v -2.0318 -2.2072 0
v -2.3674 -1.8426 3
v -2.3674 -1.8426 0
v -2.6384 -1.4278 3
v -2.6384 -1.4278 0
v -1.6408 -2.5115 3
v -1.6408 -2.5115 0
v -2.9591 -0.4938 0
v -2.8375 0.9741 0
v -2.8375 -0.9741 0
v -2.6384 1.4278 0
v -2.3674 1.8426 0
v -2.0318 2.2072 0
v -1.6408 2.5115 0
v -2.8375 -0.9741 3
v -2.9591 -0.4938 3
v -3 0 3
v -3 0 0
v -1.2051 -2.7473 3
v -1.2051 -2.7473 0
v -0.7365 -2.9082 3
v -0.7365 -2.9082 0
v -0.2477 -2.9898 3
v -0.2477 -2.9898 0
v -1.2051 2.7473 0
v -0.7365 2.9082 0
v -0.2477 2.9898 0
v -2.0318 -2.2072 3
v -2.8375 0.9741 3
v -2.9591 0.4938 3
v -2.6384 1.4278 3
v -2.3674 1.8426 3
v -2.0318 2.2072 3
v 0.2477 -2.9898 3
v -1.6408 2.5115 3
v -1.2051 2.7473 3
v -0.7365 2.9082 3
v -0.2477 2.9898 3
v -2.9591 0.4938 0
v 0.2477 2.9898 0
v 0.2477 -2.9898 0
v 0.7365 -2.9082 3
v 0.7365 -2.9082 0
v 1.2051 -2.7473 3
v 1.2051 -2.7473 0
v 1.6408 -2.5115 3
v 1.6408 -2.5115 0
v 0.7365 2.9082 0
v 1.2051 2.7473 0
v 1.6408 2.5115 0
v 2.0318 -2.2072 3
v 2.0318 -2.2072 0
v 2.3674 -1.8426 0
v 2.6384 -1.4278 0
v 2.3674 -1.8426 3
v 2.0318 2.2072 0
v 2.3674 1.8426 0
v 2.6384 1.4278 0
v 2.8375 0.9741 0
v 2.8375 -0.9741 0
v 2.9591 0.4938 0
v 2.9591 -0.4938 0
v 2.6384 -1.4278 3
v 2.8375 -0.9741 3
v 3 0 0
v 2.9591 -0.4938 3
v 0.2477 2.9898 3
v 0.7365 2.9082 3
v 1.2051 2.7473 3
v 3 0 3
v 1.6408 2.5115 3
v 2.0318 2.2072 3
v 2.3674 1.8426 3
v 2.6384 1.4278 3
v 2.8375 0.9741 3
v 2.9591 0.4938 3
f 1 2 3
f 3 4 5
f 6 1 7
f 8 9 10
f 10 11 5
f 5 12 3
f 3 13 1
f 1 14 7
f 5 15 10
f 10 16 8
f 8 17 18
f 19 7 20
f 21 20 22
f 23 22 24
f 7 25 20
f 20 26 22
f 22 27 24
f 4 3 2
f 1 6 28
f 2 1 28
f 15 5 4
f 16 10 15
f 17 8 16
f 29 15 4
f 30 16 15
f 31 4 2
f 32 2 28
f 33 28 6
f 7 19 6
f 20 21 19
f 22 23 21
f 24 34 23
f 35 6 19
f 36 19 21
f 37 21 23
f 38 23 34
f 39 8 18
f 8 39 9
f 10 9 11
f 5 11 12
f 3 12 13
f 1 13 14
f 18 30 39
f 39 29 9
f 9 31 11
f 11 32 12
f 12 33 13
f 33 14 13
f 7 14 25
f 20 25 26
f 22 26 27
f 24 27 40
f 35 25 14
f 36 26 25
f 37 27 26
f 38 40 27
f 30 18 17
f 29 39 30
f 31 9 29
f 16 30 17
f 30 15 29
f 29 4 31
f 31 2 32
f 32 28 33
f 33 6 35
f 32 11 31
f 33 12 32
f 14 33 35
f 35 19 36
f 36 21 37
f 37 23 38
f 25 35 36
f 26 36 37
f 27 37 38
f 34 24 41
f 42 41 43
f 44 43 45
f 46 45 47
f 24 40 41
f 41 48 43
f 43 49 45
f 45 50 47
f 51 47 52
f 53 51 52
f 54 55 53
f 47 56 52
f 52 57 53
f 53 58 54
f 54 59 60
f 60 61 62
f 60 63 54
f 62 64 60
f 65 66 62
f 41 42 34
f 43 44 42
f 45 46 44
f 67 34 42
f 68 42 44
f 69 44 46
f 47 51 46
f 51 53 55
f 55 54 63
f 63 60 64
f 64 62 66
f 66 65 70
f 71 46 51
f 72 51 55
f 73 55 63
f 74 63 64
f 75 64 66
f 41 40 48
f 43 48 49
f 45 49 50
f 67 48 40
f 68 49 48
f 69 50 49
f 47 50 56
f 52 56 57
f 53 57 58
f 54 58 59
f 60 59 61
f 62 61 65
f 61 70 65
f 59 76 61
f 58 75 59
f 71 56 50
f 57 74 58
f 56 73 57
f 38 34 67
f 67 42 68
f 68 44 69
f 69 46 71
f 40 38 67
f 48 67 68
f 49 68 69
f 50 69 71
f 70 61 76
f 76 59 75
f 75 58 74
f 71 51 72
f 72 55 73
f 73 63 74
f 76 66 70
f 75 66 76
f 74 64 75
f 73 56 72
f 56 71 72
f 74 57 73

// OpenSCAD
// file: ../lib/lib.scad
// Shared helpers. Include AFTER params.scad (needs TOL, M3_* etc.).
$fa = 4; $fs = 0.5;

module rrect(size, r) {            // 2D rounded rectangle, centred
    r2 = min(r, min(size[0], size[1]) / 2 - 0.001);
    offset(r = r2) square([size[0] - 2 * r2, size[1] - 2 * r2], center = true);
}
module rbox(size, r, center_xy = true) {   // box with rounded vertical edges
    translate(center_xy ? [0, 0, 0] : [size[0] / 2, size[1] / 2, 0])
        linear_extrude(size[2]) rrect([size[0], size[1]], r);
}
module rbox_at(x0, x1, y0, y1, z0, z1, r = 0.01) {
    translate([(x0 + x1) / 2, (y0 + y1) / 2, z0]) rbox([x1 - x0, y1 - y0, z1 - z0], r);
}
module box_at(x0, x1, y0, y1, z0, z1) { translate([x0, y0, z0]) cube([x1 - x0, y1 - y0, z1 - z0]); }

module ring(ro, ri, h) { difference() { cylinder(r = ro, h = h); translate([0, 0, -1]) cylinder(r = ri, h = h + 2); } }
module ring_sector(ro, ri, h, a0, a1) {
    intersection() {
        ring(ro, ri, h);
        linear_extrude(h) polygon(concat([[0, 0]], [for (a = [a0 : (a1 - a0) / 24 : a1]) 2 * ro * [cos(a), sin(a)]]));
    }
}
// teardrop hole along an axis lying horizontal (axis = Y after rotation), printable w/o support
module teardrop2d(d) { union() { circle(d = d); rotate(45) square(d / 2); } }
// vertical heat-set insert hole, opening at z=0 going +z (depth l)
module insert_hole(l = M3_INSERT_L) { translate([0, 0, -EPS]) cylinder(d = M3_INSERT_D, h = l + EPS); }
module m3_clear(l) { translate([0, 0, -EPS]) cylinder(d = M3_CLEAR, h = l + 2 * EPS); }
module m3_csk(l) {  // countersunk clearance from z=0 upward, head at z=0 side
    translate([0, 0, -EPS]) { cylinder(d = M3_CLEAR, h = l + 2 * EPS); cylinder(d1 = 6.4, d2 = M3_CLEAR, h = 1.7); }
}
module card2d() { rrect([CARD_L, CARD_W], CARD_R); }
module card_at(cy, z) { translate([0, cy, z]) linear_extrude(CARD_T) card2d(); }

// ---- gears ----
function _inv(a) = tan(a) - a * PI_ / 180;           // involute function, a in deg
function _invpt(rb, r, ang0, s) = let(al = acos(rb / r), th = ang0 - s * (_inv(al) * 180 / PI_)) [r * cos(th), r * sin(th)];
module involute_gear2d(m, z, pa = 20, clearance = 0.05) {
    rp = m * z / 2; rb = rp * cos(pa); ra = rp + m - clearance; rf = rp - 1.25 * m;
    half = 90 / z + _inv(pa) * 180 / PI_;            // tooth half-angle at base (deg)
    n = 8;
    rs = [for (i = [0 : n]) max(rb, rf) + (ra - max(rb, rf)) * i / n];
    union() {
        circle(r = rf, $fn = z * 4);
        for (k = [0 : z - 1]) rotate(k * 360 / z) polygon(concat(
            [[rf * cos(-half), rf * sin(-half)]],
            [for (r = rs) let(p = _invpt(rb, r, half, 1)) [p[0], -p[1]]],
            [for (i = [n : -1 : 0]) _invpt(rb, rs[i], half, 1)],
            [[rf * cos(half), rf * sin(half)]]));
    }
}
// straight gear rack (2D in XY: teeth along +x, pointing -y, pitch line at y=0)
module gear_rack2d(m, len, back = 3) {
    p = PI_ * m; ad = m; de = 1.25 * m; t = tan(20);
    n = ceil(len / p) + 1;
    intersection() {
        union() {
            translate([0, de]) square([len, back]);
            for (i = [0 : n]) translate([i * p - p / 4, 0]) polygon([
                [-(p / 4 + de * t), de + 0.01], [p / 4 + de * t + 0.01, de + 0.01],
                [p / 4 - ad * t, -ad], [-(p / 4 - ad * t), -ad] ]);
        }
        translate([0, -ad - 1]) square([len, ad + de + back + 2]);
    }
}
// GT2 belt-tooth profile ring (teeth outward), 2D
module gt2_ring2d(n, r_land, ri) {
    union() {
        difference() { circle(r = r_land + 0.01, $fn = n * 2); circle(r = ri, $fn = n * 2); }
        for (k = [0 : n - 1]) rotate(k * 360 / n)
            translate([r_land, 0]) hull() { translate([-0.2, 0]) square([0.2, 1.0], center = true); translate([0.25, 0]) circle(r = 0.5, $fn = 12); }
    }
}
// main file
// Vendor model: Neodymium disc magnet 6x3 mm (turret home). Local: z 0..3.
include <../params.scad>
include <../lib/lib.scad>
module vendor_magnet_6x3() color([0.7,0.7,0.75]) cylinder(d = 6, h = 3);

vendor_magnet_6x3();
